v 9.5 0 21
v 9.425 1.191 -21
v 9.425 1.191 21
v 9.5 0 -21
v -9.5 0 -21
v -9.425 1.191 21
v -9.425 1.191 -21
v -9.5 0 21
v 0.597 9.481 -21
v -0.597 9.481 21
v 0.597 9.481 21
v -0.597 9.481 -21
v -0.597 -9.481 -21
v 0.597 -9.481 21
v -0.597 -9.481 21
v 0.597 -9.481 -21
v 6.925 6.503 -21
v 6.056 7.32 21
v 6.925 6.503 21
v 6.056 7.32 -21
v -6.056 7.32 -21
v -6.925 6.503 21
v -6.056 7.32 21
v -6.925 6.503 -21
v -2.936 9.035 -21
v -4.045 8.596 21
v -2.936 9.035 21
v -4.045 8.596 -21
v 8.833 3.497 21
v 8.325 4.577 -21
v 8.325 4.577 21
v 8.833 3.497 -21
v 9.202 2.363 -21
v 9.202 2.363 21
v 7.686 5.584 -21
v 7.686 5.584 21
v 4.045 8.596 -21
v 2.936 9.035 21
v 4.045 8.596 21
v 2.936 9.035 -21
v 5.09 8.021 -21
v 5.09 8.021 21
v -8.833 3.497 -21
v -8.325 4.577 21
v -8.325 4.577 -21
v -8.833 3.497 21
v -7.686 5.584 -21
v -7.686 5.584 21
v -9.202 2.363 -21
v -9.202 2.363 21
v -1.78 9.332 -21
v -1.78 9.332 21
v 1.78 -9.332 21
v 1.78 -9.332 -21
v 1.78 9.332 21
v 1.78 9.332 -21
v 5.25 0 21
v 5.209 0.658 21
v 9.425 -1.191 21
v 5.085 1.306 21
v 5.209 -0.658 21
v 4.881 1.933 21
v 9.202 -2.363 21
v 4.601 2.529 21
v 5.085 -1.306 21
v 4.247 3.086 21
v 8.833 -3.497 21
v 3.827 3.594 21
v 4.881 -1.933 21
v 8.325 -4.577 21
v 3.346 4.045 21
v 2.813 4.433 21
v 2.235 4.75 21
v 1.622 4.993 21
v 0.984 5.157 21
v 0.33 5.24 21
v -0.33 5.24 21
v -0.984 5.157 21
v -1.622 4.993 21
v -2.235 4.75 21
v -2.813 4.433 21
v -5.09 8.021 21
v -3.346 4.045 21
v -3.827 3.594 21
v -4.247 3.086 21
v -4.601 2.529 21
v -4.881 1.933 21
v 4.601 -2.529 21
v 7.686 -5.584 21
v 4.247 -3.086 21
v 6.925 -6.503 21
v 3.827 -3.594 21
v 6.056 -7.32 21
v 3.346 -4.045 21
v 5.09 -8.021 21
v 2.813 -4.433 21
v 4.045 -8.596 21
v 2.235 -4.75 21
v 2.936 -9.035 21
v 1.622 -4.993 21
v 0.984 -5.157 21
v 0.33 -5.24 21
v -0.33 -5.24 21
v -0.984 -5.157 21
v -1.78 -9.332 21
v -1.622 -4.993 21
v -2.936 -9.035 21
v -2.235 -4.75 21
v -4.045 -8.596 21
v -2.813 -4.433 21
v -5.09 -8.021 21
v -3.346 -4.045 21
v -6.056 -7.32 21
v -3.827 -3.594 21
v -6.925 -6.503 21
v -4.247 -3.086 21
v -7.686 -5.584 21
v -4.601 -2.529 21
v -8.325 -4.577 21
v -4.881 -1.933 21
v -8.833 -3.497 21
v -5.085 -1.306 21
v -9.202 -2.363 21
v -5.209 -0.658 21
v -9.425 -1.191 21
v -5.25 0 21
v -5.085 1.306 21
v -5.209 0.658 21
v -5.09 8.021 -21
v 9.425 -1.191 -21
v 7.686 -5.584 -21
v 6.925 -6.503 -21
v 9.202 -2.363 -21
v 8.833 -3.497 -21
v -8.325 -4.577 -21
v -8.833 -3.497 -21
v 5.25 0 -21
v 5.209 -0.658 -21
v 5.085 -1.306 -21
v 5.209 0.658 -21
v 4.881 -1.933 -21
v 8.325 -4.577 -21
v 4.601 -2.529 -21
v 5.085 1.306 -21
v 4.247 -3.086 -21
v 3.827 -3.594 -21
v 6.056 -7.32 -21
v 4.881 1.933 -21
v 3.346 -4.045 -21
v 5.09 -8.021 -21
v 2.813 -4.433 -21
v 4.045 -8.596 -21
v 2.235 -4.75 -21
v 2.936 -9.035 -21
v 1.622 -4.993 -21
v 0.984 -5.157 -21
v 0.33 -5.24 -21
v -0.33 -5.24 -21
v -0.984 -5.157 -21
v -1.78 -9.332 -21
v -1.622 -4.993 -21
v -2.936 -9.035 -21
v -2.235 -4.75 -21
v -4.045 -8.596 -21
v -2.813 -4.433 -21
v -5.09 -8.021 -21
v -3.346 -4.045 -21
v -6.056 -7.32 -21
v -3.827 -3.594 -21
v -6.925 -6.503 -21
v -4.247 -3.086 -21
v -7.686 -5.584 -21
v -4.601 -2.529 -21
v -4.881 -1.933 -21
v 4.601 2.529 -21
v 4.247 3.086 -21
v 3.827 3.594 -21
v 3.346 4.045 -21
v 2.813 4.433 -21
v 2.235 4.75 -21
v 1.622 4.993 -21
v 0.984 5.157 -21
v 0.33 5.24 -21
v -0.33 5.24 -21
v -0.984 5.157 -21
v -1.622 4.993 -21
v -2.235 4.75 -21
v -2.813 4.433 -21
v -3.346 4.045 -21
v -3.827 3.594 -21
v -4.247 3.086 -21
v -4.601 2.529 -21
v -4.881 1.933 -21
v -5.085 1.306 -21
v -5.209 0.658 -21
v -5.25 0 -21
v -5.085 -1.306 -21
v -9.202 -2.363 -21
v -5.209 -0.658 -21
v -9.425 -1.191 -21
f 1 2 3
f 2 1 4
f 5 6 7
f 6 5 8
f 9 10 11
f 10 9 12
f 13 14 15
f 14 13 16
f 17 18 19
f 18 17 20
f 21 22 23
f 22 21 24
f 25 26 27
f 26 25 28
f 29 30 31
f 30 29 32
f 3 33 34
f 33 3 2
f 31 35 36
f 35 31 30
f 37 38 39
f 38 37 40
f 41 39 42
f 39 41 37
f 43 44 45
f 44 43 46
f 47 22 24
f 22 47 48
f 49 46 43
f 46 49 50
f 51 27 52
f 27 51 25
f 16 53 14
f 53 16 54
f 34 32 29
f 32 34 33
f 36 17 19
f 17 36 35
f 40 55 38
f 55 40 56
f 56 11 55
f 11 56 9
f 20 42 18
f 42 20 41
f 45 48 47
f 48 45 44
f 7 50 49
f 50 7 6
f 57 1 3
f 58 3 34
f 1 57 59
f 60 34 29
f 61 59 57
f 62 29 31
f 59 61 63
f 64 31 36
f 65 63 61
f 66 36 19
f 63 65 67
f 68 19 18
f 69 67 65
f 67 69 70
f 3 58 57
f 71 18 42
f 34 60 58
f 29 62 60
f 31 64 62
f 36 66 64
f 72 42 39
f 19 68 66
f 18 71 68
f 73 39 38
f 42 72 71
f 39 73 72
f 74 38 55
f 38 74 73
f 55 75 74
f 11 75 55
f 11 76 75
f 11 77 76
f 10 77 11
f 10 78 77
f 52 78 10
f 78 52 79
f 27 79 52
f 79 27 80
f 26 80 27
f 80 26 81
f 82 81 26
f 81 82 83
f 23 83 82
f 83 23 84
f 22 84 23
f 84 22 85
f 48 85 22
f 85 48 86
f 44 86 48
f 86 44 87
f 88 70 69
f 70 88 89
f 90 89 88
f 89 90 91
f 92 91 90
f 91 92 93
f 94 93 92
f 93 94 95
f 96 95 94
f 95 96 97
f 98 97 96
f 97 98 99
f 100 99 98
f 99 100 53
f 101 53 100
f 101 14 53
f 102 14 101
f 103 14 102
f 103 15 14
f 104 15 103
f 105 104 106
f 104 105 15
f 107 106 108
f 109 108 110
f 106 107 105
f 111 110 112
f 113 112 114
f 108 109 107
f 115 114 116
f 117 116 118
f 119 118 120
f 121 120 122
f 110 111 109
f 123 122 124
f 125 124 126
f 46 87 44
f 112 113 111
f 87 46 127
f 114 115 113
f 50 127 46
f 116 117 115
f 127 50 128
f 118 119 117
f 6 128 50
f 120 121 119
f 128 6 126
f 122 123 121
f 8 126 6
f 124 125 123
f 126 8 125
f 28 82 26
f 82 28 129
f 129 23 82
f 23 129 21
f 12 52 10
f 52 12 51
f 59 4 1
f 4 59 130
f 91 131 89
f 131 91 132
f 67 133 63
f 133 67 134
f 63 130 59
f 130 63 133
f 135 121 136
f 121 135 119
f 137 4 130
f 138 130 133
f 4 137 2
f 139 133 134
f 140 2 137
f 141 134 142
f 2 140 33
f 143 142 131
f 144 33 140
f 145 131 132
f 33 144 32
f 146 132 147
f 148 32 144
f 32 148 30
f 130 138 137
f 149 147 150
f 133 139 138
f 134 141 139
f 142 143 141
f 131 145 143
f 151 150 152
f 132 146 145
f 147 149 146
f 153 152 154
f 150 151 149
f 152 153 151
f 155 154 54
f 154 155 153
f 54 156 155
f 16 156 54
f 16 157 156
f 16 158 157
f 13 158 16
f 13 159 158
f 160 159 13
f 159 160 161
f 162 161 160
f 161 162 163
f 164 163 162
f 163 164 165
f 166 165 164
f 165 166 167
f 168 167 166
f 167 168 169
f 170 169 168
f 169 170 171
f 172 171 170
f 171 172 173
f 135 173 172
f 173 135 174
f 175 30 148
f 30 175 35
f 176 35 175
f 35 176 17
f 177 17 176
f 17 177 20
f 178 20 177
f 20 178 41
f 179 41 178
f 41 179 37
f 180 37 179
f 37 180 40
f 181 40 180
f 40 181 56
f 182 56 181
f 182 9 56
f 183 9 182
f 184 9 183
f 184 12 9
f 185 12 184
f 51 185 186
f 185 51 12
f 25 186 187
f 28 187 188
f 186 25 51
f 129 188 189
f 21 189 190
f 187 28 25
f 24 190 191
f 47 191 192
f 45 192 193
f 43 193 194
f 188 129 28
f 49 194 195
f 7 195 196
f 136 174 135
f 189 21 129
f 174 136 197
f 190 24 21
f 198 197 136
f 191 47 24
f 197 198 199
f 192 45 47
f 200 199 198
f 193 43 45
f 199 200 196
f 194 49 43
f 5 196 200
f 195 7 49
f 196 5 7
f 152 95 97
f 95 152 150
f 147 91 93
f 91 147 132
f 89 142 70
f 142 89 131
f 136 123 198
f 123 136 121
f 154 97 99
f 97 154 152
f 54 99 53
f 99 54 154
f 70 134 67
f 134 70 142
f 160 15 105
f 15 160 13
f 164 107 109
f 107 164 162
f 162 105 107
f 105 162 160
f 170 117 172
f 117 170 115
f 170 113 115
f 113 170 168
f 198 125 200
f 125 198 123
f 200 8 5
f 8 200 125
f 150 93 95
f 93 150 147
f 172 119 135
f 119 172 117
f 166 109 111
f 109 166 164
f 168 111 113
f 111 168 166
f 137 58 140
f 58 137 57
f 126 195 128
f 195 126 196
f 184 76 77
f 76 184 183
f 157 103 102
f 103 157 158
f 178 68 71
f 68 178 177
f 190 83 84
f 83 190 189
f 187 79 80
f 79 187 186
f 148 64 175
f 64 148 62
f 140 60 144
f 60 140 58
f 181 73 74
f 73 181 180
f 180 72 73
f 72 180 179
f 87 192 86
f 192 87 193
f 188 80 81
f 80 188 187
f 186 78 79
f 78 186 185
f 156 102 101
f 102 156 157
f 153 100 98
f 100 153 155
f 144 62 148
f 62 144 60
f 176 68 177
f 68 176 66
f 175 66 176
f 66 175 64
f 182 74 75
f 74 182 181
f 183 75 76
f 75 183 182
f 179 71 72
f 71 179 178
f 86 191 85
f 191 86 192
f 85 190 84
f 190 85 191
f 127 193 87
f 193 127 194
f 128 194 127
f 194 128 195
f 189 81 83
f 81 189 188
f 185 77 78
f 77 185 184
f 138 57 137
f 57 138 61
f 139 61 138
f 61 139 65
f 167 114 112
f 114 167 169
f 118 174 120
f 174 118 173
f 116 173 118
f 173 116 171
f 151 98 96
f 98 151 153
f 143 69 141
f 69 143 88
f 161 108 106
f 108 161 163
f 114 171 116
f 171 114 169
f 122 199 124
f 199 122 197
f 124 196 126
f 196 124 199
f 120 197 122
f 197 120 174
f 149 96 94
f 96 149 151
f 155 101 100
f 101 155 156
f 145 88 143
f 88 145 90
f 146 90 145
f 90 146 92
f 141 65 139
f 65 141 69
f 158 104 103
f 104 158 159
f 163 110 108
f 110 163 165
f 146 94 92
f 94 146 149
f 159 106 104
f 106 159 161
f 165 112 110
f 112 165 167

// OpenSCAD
$fn = 50;


difference() {
	union() {
		translate(v = [0, 0, -21.0000000000]) {
			cylinder(h = 42, r = 9.5000000000);
		}
	}
	union() {
		translate(v = [0, 0, -100.0000000000]) {
			cylinder(h = 200, r = 5.2500000000);
		}
	}
}
